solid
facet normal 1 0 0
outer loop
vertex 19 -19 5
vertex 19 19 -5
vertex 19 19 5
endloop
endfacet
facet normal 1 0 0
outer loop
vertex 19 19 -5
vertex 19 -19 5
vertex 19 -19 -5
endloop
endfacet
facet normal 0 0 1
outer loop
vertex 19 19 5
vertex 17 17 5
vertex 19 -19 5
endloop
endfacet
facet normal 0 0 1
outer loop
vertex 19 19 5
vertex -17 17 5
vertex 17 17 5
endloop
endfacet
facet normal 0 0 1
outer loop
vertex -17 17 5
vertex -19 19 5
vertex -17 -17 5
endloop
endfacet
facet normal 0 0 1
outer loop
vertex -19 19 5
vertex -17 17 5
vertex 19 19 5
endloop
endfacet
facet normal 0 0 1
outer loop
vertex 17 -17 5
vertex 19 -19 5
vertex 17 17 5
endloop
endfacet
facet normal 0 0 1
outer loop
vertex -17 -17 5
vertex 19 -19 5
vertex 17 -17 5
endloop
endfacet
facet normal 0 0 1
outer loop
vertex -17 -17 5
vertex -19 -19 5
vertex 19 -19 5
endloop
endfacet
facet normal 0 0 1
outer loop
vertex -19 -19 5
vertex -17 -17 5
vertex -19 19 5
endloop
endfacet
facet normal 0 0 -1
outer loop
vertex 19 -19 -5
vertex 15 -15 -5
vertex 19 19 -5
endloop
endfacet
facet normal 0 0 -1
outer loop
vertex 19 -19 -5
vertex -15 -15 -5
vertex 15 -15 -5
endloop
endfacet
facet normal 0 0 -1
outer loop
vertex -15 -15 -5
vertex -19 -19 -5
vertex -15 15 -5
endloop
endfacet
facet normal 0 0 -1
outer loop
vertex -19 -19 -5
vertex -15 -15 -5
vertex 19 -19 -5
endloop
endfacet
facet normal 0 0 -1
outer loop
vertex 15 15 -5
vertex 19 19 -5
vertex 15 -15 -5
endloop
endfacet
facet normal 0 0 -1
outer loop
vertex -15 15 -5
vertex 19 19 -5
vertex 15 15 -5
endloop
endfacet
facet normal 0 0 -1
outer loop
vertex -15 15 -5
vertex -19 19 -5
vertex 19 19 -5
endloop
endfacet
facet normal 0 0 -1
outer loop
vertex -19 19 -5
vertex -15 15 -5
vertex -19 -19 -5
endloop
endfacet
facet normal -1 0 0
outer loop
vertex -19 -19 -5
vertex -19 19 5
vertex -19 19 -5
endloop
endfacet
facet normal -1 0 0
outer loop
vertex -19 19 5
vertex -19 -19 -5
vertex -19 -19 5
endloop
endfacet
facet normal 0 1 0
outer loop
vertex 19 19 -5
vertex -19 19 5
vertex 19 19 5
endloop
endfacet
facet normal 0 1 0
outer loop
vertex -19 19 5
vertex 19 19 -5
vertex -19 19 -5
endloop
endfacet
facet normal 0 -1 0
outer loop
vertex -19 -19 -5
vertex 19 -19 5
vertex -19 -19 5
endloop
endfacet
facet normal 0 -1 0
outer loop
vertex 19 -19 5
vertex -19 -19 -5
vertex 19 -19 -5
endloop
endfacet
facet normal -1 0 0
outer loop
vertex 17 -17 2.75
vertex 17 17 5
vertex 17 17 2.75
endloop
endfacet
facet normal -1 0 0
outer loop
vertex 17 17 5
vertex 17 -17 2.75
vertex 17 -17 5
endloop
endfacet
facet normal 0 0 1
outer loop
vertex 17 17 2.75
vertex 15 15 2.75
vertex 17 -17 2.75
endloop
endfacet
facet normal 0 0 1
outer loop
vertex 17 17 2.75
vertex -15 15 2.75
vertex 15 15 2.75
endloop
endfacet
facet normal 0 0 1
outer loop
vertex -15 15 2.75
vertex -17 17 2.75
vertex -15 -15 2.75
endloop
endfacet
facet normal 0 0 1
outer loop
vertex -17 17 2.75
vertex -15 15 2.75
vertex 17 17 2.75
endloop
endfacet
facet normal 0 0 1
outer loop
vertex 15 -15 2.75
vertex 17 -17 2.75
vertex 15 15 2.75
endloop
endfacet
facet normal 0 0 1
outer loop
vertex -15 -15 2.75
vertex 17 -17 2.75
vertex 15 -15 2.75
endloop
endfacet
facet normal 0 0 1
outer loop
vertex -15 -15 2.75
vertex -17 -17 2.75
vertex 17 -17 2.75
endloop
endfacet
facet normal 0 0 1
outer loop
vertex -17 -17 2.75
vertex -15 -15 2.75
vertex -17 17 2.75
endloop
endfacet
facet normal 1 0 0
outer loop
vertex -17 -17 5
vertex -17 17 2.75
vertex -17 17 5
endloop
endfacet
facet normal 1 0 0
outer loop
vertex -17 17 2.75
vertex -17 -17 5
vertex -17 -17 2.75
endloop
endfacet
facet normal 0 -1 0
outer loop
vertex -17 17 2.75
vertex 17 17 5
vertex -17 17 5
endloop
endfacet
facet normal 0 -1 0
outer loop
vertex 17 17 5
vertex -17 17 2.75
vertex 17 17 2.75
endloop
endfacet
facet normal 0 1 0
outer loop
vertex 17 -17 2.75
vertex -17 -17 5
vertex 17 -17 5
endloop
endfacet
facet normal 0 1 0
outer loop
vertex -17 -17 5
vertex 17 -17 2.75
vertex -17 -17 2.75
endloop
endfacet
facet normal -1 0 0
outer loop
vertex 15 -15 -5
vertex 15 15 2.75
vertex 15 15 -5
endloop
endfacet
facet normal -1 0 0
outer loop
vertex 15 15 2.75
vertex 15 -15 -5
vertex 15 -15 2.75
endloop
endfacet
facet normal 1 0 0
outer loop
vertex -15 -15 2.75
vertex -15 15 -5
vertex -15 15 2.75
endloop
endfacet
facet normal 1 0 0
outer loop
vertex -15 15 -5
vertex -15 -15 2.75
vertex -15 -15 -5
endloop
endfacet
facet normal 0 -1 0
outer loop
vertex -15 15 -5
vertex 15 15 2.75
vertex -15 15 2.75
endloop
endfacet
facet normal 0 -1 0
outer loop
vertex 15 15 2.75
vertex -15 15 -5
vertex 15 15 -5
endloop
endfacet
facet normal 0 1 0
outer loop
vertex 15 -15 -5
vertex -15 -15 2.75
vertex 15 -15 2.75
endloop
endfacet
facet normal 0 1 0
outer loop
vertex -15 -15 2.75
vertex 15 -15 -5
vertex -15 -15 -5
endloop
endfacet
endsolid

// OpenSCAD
difference() {
    cube([34+4, 34+4, 10], center=true);

    translate([0, 0, 4]) {
        cube([34, 34, 2.5], center=true);
    }

    translate([0, 0, 0]) {
        cube([34-4, 34-4, 12], center=true);
    }

}
